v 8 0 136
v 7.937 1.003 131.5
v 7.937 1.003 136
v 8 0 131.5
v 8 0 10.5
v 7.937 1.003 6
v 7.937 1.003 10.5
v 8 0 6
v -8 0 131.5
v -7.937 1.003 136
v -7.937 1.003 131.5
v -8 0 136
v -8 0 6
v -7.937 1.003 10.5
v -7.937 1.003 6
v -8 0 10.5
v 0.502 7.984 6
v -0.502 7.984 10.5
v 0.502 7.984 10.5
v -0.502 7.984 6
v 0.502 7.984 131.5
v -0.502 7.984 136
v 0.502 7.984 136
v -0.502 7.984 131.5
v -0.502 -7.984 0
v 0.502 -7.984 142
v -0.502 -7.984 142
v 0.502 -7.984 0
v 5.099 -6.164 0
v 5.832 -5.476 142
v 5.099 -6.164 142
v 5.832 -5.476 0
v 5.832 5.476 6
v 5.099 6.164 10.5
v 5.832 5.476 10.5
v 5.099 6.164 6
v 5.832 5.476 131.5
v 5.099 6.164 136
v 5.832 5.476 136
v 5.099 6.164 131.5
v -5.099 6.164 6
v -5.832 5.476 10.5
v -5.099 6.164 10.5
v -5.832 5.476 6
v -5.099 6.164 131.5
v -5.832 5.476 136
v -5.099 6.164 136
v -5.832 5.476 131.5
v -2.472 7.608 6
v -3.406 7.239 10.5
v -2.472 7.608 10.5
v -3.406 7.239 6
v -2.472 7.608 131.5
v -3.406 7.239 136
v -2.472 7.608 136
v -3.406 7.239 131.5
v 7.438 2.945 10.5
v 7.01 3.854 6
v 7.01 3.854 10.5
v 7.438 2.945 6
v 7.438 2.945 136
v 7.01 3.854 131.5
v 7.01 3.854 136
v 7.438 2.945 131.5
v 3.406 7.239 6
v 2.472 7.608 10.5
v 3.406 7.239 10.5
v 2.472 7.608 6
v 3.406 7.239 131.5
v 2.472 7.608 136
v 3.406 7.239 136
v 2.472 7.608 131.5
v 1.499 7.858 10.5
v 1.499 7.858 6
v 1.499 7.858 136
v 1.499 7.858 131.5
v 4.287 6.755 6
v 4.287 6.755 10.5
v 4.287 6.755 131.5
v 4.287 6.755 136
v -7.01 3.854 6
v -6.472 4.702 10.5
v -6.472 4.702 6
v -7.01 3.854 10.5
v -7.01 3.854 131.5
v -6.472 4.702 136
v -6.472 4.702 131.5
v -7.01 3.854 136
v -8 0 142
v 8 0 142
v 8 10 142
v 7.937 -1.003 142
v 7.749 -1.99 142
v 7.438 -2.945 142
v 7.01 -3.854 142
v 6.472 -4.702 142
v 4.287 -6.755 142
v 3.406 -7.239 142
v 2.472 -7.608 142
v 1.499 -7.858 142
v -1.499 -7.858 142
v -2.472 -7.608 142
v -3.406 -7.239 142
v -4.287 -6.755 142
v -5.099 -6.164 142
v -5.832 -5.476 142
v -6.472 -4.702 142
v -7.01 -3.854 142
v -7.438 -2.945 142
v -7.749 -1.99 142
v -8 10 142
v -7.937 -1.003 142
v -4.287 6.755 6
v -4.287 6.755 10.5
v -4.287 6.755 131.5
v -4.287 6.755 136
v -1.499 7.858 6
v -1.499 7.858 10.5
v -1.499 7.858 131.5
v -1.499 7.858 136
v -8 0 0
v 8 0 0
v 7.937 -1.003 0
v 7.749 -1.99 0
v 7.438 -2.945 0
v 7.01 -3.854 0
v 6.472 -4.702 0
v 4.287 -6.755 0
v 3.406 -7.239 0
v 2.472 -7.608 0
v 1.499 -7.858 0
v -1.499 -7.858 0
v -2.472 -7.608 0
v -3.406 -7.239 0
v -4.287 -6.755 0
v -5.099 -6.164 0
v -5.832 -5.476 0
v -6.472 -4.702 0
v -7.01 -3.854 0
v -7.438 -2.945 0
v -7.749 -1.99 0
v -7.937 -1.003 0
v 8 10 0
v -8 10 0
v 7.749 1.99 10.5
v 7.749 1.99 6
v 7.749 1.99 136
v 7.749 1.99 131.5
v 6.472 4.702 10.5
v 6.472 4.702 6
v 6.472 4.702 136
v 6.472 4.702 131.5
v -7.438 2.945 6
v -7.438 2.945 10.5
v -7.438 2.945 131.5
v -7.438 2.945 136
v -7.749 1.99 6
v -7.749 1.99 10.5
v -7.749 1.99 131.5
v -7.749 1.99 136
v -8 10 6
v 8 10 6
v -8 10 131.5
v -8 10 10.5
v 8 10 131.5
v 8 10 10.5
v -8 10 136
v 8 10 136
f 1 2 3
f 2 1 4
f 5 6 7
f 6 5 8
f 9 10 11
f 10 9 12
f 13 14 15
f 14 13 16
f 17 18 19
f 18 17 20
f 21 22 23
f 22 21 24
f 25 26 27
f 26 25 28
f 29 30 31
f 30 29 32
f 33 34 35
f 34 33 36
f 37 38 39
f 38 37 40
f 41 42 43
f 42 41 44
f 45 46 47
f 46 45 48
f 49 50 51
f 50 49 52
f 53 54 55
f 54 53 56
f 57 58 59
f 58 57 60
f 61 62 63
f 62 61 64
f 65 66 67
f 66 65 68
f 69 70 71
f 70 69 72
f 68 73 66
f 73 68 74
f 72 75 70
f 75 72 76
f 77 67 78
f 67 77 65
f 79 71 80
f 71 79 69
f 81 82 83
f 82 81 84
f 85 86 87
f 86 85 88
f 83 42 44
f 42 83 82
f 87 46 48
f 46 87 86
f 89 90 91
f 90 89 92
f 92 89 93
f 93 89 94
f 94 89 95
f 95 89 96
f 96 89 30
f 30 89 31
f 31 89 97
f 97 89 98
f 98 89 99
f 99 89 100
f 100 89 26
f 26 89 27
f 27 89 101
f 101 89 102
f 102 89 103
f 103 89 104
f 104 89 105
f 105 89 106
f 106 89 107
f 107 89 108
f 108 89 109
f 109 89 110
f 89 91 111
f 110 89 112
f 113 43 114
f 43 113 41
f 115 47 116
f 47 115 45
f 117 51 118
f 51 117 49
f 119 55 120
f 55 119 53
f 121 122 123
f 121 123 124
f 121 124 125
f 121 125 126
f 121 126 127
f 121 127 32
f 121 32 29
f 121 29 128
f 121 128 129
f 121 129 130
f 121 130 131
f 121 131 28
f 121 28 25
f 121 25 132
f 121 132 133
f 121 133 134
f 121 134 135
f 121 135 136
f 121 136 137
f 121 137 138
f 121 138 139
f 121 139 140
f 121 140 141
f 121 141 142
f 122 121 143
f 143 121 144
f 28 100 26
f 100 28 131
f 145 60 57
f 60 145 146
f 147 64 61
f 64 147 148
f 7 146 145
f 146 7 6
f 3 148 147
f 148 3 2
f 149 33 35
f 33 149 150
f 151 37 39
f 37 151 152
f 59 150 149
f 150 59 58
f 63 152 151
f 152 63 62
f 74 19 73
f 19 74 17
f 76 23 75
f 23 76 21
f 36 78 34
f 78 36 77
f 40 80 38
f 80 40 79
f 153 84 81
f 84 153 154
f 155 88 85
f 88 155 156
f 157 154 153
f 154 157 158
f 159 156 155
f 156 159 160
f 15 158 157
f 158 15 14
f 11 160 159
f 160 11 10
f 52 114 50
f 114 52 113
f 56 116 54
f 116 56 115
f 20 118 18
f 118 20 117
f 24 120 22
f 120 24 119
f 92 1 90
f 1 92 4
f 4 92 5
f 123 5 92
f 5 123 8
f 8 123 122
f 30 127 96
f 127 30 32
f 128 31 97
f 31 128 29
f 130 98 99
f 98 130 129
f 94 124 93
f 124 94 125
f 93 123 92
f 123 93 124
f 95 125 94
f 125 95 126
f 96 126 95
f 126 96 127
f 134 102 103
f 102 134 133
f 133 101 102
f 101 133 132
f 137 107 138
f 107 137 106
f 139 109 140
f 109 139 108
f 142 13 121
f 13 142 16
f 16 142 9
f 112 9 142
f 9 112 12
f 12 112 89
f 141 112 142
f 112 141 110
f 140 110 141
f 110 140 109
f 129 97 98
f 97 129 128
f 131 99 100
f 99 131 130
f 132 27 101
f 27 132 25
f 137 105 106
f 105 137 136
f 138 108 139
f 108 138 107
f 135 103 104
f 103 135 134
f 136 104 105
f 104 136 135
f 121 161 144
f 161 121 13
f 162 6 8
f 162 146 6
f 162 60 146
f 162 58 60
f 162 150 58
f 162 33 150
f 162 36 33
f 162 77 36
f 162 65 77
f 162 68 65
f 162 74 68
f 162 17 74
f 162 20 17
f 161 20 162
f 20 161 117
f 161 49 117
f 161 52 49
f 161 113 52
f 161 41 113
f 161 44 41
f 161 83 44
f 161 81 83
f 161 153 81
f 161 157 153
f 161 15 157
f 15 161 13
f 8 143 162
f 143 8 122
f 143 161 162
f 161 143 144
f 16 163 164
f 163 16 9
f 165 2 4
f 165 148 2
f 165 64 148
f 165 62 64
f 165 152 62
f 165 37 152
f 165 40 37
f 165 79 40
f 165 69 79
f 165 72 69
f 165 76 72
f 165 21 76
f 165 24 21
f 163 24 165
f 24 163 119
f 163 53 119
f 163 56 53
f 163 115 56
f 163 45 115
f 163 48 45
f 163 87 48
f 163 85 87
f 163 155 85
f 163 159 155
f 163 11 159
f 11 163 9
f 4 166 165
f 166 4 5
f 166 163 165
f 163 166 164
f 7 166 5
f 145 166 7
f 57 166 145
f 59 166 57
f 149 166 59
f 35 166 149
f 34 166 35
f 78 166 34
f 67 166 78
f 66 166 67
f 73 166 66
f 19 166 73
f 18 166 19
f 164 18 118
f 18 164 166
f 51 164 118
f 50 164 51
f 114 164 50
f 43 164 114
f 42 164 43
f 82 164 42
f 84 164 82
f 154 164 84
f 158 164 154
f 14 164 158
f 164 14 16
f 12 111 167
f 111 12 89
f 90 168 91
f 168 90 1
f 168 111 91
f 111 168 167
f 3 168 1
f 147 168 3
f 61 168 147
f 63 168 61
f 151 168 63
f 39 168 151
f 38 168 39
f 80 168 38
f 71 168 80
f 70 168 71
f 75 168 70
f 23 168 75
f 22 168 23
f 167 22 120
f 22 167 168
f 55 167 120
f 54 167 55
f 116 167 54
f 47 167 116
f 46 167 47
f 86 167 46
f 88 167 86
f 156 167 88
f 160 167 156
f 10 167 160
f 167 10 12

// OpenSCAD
$fn=50;

cylinder(142,16/2,16/2);
translate([-8,0,0])cube([16,10,6]);
translate([-8,0,10.5])cube([16,10,121]);
translate([-8,0,136])cube([16,10,6]);
